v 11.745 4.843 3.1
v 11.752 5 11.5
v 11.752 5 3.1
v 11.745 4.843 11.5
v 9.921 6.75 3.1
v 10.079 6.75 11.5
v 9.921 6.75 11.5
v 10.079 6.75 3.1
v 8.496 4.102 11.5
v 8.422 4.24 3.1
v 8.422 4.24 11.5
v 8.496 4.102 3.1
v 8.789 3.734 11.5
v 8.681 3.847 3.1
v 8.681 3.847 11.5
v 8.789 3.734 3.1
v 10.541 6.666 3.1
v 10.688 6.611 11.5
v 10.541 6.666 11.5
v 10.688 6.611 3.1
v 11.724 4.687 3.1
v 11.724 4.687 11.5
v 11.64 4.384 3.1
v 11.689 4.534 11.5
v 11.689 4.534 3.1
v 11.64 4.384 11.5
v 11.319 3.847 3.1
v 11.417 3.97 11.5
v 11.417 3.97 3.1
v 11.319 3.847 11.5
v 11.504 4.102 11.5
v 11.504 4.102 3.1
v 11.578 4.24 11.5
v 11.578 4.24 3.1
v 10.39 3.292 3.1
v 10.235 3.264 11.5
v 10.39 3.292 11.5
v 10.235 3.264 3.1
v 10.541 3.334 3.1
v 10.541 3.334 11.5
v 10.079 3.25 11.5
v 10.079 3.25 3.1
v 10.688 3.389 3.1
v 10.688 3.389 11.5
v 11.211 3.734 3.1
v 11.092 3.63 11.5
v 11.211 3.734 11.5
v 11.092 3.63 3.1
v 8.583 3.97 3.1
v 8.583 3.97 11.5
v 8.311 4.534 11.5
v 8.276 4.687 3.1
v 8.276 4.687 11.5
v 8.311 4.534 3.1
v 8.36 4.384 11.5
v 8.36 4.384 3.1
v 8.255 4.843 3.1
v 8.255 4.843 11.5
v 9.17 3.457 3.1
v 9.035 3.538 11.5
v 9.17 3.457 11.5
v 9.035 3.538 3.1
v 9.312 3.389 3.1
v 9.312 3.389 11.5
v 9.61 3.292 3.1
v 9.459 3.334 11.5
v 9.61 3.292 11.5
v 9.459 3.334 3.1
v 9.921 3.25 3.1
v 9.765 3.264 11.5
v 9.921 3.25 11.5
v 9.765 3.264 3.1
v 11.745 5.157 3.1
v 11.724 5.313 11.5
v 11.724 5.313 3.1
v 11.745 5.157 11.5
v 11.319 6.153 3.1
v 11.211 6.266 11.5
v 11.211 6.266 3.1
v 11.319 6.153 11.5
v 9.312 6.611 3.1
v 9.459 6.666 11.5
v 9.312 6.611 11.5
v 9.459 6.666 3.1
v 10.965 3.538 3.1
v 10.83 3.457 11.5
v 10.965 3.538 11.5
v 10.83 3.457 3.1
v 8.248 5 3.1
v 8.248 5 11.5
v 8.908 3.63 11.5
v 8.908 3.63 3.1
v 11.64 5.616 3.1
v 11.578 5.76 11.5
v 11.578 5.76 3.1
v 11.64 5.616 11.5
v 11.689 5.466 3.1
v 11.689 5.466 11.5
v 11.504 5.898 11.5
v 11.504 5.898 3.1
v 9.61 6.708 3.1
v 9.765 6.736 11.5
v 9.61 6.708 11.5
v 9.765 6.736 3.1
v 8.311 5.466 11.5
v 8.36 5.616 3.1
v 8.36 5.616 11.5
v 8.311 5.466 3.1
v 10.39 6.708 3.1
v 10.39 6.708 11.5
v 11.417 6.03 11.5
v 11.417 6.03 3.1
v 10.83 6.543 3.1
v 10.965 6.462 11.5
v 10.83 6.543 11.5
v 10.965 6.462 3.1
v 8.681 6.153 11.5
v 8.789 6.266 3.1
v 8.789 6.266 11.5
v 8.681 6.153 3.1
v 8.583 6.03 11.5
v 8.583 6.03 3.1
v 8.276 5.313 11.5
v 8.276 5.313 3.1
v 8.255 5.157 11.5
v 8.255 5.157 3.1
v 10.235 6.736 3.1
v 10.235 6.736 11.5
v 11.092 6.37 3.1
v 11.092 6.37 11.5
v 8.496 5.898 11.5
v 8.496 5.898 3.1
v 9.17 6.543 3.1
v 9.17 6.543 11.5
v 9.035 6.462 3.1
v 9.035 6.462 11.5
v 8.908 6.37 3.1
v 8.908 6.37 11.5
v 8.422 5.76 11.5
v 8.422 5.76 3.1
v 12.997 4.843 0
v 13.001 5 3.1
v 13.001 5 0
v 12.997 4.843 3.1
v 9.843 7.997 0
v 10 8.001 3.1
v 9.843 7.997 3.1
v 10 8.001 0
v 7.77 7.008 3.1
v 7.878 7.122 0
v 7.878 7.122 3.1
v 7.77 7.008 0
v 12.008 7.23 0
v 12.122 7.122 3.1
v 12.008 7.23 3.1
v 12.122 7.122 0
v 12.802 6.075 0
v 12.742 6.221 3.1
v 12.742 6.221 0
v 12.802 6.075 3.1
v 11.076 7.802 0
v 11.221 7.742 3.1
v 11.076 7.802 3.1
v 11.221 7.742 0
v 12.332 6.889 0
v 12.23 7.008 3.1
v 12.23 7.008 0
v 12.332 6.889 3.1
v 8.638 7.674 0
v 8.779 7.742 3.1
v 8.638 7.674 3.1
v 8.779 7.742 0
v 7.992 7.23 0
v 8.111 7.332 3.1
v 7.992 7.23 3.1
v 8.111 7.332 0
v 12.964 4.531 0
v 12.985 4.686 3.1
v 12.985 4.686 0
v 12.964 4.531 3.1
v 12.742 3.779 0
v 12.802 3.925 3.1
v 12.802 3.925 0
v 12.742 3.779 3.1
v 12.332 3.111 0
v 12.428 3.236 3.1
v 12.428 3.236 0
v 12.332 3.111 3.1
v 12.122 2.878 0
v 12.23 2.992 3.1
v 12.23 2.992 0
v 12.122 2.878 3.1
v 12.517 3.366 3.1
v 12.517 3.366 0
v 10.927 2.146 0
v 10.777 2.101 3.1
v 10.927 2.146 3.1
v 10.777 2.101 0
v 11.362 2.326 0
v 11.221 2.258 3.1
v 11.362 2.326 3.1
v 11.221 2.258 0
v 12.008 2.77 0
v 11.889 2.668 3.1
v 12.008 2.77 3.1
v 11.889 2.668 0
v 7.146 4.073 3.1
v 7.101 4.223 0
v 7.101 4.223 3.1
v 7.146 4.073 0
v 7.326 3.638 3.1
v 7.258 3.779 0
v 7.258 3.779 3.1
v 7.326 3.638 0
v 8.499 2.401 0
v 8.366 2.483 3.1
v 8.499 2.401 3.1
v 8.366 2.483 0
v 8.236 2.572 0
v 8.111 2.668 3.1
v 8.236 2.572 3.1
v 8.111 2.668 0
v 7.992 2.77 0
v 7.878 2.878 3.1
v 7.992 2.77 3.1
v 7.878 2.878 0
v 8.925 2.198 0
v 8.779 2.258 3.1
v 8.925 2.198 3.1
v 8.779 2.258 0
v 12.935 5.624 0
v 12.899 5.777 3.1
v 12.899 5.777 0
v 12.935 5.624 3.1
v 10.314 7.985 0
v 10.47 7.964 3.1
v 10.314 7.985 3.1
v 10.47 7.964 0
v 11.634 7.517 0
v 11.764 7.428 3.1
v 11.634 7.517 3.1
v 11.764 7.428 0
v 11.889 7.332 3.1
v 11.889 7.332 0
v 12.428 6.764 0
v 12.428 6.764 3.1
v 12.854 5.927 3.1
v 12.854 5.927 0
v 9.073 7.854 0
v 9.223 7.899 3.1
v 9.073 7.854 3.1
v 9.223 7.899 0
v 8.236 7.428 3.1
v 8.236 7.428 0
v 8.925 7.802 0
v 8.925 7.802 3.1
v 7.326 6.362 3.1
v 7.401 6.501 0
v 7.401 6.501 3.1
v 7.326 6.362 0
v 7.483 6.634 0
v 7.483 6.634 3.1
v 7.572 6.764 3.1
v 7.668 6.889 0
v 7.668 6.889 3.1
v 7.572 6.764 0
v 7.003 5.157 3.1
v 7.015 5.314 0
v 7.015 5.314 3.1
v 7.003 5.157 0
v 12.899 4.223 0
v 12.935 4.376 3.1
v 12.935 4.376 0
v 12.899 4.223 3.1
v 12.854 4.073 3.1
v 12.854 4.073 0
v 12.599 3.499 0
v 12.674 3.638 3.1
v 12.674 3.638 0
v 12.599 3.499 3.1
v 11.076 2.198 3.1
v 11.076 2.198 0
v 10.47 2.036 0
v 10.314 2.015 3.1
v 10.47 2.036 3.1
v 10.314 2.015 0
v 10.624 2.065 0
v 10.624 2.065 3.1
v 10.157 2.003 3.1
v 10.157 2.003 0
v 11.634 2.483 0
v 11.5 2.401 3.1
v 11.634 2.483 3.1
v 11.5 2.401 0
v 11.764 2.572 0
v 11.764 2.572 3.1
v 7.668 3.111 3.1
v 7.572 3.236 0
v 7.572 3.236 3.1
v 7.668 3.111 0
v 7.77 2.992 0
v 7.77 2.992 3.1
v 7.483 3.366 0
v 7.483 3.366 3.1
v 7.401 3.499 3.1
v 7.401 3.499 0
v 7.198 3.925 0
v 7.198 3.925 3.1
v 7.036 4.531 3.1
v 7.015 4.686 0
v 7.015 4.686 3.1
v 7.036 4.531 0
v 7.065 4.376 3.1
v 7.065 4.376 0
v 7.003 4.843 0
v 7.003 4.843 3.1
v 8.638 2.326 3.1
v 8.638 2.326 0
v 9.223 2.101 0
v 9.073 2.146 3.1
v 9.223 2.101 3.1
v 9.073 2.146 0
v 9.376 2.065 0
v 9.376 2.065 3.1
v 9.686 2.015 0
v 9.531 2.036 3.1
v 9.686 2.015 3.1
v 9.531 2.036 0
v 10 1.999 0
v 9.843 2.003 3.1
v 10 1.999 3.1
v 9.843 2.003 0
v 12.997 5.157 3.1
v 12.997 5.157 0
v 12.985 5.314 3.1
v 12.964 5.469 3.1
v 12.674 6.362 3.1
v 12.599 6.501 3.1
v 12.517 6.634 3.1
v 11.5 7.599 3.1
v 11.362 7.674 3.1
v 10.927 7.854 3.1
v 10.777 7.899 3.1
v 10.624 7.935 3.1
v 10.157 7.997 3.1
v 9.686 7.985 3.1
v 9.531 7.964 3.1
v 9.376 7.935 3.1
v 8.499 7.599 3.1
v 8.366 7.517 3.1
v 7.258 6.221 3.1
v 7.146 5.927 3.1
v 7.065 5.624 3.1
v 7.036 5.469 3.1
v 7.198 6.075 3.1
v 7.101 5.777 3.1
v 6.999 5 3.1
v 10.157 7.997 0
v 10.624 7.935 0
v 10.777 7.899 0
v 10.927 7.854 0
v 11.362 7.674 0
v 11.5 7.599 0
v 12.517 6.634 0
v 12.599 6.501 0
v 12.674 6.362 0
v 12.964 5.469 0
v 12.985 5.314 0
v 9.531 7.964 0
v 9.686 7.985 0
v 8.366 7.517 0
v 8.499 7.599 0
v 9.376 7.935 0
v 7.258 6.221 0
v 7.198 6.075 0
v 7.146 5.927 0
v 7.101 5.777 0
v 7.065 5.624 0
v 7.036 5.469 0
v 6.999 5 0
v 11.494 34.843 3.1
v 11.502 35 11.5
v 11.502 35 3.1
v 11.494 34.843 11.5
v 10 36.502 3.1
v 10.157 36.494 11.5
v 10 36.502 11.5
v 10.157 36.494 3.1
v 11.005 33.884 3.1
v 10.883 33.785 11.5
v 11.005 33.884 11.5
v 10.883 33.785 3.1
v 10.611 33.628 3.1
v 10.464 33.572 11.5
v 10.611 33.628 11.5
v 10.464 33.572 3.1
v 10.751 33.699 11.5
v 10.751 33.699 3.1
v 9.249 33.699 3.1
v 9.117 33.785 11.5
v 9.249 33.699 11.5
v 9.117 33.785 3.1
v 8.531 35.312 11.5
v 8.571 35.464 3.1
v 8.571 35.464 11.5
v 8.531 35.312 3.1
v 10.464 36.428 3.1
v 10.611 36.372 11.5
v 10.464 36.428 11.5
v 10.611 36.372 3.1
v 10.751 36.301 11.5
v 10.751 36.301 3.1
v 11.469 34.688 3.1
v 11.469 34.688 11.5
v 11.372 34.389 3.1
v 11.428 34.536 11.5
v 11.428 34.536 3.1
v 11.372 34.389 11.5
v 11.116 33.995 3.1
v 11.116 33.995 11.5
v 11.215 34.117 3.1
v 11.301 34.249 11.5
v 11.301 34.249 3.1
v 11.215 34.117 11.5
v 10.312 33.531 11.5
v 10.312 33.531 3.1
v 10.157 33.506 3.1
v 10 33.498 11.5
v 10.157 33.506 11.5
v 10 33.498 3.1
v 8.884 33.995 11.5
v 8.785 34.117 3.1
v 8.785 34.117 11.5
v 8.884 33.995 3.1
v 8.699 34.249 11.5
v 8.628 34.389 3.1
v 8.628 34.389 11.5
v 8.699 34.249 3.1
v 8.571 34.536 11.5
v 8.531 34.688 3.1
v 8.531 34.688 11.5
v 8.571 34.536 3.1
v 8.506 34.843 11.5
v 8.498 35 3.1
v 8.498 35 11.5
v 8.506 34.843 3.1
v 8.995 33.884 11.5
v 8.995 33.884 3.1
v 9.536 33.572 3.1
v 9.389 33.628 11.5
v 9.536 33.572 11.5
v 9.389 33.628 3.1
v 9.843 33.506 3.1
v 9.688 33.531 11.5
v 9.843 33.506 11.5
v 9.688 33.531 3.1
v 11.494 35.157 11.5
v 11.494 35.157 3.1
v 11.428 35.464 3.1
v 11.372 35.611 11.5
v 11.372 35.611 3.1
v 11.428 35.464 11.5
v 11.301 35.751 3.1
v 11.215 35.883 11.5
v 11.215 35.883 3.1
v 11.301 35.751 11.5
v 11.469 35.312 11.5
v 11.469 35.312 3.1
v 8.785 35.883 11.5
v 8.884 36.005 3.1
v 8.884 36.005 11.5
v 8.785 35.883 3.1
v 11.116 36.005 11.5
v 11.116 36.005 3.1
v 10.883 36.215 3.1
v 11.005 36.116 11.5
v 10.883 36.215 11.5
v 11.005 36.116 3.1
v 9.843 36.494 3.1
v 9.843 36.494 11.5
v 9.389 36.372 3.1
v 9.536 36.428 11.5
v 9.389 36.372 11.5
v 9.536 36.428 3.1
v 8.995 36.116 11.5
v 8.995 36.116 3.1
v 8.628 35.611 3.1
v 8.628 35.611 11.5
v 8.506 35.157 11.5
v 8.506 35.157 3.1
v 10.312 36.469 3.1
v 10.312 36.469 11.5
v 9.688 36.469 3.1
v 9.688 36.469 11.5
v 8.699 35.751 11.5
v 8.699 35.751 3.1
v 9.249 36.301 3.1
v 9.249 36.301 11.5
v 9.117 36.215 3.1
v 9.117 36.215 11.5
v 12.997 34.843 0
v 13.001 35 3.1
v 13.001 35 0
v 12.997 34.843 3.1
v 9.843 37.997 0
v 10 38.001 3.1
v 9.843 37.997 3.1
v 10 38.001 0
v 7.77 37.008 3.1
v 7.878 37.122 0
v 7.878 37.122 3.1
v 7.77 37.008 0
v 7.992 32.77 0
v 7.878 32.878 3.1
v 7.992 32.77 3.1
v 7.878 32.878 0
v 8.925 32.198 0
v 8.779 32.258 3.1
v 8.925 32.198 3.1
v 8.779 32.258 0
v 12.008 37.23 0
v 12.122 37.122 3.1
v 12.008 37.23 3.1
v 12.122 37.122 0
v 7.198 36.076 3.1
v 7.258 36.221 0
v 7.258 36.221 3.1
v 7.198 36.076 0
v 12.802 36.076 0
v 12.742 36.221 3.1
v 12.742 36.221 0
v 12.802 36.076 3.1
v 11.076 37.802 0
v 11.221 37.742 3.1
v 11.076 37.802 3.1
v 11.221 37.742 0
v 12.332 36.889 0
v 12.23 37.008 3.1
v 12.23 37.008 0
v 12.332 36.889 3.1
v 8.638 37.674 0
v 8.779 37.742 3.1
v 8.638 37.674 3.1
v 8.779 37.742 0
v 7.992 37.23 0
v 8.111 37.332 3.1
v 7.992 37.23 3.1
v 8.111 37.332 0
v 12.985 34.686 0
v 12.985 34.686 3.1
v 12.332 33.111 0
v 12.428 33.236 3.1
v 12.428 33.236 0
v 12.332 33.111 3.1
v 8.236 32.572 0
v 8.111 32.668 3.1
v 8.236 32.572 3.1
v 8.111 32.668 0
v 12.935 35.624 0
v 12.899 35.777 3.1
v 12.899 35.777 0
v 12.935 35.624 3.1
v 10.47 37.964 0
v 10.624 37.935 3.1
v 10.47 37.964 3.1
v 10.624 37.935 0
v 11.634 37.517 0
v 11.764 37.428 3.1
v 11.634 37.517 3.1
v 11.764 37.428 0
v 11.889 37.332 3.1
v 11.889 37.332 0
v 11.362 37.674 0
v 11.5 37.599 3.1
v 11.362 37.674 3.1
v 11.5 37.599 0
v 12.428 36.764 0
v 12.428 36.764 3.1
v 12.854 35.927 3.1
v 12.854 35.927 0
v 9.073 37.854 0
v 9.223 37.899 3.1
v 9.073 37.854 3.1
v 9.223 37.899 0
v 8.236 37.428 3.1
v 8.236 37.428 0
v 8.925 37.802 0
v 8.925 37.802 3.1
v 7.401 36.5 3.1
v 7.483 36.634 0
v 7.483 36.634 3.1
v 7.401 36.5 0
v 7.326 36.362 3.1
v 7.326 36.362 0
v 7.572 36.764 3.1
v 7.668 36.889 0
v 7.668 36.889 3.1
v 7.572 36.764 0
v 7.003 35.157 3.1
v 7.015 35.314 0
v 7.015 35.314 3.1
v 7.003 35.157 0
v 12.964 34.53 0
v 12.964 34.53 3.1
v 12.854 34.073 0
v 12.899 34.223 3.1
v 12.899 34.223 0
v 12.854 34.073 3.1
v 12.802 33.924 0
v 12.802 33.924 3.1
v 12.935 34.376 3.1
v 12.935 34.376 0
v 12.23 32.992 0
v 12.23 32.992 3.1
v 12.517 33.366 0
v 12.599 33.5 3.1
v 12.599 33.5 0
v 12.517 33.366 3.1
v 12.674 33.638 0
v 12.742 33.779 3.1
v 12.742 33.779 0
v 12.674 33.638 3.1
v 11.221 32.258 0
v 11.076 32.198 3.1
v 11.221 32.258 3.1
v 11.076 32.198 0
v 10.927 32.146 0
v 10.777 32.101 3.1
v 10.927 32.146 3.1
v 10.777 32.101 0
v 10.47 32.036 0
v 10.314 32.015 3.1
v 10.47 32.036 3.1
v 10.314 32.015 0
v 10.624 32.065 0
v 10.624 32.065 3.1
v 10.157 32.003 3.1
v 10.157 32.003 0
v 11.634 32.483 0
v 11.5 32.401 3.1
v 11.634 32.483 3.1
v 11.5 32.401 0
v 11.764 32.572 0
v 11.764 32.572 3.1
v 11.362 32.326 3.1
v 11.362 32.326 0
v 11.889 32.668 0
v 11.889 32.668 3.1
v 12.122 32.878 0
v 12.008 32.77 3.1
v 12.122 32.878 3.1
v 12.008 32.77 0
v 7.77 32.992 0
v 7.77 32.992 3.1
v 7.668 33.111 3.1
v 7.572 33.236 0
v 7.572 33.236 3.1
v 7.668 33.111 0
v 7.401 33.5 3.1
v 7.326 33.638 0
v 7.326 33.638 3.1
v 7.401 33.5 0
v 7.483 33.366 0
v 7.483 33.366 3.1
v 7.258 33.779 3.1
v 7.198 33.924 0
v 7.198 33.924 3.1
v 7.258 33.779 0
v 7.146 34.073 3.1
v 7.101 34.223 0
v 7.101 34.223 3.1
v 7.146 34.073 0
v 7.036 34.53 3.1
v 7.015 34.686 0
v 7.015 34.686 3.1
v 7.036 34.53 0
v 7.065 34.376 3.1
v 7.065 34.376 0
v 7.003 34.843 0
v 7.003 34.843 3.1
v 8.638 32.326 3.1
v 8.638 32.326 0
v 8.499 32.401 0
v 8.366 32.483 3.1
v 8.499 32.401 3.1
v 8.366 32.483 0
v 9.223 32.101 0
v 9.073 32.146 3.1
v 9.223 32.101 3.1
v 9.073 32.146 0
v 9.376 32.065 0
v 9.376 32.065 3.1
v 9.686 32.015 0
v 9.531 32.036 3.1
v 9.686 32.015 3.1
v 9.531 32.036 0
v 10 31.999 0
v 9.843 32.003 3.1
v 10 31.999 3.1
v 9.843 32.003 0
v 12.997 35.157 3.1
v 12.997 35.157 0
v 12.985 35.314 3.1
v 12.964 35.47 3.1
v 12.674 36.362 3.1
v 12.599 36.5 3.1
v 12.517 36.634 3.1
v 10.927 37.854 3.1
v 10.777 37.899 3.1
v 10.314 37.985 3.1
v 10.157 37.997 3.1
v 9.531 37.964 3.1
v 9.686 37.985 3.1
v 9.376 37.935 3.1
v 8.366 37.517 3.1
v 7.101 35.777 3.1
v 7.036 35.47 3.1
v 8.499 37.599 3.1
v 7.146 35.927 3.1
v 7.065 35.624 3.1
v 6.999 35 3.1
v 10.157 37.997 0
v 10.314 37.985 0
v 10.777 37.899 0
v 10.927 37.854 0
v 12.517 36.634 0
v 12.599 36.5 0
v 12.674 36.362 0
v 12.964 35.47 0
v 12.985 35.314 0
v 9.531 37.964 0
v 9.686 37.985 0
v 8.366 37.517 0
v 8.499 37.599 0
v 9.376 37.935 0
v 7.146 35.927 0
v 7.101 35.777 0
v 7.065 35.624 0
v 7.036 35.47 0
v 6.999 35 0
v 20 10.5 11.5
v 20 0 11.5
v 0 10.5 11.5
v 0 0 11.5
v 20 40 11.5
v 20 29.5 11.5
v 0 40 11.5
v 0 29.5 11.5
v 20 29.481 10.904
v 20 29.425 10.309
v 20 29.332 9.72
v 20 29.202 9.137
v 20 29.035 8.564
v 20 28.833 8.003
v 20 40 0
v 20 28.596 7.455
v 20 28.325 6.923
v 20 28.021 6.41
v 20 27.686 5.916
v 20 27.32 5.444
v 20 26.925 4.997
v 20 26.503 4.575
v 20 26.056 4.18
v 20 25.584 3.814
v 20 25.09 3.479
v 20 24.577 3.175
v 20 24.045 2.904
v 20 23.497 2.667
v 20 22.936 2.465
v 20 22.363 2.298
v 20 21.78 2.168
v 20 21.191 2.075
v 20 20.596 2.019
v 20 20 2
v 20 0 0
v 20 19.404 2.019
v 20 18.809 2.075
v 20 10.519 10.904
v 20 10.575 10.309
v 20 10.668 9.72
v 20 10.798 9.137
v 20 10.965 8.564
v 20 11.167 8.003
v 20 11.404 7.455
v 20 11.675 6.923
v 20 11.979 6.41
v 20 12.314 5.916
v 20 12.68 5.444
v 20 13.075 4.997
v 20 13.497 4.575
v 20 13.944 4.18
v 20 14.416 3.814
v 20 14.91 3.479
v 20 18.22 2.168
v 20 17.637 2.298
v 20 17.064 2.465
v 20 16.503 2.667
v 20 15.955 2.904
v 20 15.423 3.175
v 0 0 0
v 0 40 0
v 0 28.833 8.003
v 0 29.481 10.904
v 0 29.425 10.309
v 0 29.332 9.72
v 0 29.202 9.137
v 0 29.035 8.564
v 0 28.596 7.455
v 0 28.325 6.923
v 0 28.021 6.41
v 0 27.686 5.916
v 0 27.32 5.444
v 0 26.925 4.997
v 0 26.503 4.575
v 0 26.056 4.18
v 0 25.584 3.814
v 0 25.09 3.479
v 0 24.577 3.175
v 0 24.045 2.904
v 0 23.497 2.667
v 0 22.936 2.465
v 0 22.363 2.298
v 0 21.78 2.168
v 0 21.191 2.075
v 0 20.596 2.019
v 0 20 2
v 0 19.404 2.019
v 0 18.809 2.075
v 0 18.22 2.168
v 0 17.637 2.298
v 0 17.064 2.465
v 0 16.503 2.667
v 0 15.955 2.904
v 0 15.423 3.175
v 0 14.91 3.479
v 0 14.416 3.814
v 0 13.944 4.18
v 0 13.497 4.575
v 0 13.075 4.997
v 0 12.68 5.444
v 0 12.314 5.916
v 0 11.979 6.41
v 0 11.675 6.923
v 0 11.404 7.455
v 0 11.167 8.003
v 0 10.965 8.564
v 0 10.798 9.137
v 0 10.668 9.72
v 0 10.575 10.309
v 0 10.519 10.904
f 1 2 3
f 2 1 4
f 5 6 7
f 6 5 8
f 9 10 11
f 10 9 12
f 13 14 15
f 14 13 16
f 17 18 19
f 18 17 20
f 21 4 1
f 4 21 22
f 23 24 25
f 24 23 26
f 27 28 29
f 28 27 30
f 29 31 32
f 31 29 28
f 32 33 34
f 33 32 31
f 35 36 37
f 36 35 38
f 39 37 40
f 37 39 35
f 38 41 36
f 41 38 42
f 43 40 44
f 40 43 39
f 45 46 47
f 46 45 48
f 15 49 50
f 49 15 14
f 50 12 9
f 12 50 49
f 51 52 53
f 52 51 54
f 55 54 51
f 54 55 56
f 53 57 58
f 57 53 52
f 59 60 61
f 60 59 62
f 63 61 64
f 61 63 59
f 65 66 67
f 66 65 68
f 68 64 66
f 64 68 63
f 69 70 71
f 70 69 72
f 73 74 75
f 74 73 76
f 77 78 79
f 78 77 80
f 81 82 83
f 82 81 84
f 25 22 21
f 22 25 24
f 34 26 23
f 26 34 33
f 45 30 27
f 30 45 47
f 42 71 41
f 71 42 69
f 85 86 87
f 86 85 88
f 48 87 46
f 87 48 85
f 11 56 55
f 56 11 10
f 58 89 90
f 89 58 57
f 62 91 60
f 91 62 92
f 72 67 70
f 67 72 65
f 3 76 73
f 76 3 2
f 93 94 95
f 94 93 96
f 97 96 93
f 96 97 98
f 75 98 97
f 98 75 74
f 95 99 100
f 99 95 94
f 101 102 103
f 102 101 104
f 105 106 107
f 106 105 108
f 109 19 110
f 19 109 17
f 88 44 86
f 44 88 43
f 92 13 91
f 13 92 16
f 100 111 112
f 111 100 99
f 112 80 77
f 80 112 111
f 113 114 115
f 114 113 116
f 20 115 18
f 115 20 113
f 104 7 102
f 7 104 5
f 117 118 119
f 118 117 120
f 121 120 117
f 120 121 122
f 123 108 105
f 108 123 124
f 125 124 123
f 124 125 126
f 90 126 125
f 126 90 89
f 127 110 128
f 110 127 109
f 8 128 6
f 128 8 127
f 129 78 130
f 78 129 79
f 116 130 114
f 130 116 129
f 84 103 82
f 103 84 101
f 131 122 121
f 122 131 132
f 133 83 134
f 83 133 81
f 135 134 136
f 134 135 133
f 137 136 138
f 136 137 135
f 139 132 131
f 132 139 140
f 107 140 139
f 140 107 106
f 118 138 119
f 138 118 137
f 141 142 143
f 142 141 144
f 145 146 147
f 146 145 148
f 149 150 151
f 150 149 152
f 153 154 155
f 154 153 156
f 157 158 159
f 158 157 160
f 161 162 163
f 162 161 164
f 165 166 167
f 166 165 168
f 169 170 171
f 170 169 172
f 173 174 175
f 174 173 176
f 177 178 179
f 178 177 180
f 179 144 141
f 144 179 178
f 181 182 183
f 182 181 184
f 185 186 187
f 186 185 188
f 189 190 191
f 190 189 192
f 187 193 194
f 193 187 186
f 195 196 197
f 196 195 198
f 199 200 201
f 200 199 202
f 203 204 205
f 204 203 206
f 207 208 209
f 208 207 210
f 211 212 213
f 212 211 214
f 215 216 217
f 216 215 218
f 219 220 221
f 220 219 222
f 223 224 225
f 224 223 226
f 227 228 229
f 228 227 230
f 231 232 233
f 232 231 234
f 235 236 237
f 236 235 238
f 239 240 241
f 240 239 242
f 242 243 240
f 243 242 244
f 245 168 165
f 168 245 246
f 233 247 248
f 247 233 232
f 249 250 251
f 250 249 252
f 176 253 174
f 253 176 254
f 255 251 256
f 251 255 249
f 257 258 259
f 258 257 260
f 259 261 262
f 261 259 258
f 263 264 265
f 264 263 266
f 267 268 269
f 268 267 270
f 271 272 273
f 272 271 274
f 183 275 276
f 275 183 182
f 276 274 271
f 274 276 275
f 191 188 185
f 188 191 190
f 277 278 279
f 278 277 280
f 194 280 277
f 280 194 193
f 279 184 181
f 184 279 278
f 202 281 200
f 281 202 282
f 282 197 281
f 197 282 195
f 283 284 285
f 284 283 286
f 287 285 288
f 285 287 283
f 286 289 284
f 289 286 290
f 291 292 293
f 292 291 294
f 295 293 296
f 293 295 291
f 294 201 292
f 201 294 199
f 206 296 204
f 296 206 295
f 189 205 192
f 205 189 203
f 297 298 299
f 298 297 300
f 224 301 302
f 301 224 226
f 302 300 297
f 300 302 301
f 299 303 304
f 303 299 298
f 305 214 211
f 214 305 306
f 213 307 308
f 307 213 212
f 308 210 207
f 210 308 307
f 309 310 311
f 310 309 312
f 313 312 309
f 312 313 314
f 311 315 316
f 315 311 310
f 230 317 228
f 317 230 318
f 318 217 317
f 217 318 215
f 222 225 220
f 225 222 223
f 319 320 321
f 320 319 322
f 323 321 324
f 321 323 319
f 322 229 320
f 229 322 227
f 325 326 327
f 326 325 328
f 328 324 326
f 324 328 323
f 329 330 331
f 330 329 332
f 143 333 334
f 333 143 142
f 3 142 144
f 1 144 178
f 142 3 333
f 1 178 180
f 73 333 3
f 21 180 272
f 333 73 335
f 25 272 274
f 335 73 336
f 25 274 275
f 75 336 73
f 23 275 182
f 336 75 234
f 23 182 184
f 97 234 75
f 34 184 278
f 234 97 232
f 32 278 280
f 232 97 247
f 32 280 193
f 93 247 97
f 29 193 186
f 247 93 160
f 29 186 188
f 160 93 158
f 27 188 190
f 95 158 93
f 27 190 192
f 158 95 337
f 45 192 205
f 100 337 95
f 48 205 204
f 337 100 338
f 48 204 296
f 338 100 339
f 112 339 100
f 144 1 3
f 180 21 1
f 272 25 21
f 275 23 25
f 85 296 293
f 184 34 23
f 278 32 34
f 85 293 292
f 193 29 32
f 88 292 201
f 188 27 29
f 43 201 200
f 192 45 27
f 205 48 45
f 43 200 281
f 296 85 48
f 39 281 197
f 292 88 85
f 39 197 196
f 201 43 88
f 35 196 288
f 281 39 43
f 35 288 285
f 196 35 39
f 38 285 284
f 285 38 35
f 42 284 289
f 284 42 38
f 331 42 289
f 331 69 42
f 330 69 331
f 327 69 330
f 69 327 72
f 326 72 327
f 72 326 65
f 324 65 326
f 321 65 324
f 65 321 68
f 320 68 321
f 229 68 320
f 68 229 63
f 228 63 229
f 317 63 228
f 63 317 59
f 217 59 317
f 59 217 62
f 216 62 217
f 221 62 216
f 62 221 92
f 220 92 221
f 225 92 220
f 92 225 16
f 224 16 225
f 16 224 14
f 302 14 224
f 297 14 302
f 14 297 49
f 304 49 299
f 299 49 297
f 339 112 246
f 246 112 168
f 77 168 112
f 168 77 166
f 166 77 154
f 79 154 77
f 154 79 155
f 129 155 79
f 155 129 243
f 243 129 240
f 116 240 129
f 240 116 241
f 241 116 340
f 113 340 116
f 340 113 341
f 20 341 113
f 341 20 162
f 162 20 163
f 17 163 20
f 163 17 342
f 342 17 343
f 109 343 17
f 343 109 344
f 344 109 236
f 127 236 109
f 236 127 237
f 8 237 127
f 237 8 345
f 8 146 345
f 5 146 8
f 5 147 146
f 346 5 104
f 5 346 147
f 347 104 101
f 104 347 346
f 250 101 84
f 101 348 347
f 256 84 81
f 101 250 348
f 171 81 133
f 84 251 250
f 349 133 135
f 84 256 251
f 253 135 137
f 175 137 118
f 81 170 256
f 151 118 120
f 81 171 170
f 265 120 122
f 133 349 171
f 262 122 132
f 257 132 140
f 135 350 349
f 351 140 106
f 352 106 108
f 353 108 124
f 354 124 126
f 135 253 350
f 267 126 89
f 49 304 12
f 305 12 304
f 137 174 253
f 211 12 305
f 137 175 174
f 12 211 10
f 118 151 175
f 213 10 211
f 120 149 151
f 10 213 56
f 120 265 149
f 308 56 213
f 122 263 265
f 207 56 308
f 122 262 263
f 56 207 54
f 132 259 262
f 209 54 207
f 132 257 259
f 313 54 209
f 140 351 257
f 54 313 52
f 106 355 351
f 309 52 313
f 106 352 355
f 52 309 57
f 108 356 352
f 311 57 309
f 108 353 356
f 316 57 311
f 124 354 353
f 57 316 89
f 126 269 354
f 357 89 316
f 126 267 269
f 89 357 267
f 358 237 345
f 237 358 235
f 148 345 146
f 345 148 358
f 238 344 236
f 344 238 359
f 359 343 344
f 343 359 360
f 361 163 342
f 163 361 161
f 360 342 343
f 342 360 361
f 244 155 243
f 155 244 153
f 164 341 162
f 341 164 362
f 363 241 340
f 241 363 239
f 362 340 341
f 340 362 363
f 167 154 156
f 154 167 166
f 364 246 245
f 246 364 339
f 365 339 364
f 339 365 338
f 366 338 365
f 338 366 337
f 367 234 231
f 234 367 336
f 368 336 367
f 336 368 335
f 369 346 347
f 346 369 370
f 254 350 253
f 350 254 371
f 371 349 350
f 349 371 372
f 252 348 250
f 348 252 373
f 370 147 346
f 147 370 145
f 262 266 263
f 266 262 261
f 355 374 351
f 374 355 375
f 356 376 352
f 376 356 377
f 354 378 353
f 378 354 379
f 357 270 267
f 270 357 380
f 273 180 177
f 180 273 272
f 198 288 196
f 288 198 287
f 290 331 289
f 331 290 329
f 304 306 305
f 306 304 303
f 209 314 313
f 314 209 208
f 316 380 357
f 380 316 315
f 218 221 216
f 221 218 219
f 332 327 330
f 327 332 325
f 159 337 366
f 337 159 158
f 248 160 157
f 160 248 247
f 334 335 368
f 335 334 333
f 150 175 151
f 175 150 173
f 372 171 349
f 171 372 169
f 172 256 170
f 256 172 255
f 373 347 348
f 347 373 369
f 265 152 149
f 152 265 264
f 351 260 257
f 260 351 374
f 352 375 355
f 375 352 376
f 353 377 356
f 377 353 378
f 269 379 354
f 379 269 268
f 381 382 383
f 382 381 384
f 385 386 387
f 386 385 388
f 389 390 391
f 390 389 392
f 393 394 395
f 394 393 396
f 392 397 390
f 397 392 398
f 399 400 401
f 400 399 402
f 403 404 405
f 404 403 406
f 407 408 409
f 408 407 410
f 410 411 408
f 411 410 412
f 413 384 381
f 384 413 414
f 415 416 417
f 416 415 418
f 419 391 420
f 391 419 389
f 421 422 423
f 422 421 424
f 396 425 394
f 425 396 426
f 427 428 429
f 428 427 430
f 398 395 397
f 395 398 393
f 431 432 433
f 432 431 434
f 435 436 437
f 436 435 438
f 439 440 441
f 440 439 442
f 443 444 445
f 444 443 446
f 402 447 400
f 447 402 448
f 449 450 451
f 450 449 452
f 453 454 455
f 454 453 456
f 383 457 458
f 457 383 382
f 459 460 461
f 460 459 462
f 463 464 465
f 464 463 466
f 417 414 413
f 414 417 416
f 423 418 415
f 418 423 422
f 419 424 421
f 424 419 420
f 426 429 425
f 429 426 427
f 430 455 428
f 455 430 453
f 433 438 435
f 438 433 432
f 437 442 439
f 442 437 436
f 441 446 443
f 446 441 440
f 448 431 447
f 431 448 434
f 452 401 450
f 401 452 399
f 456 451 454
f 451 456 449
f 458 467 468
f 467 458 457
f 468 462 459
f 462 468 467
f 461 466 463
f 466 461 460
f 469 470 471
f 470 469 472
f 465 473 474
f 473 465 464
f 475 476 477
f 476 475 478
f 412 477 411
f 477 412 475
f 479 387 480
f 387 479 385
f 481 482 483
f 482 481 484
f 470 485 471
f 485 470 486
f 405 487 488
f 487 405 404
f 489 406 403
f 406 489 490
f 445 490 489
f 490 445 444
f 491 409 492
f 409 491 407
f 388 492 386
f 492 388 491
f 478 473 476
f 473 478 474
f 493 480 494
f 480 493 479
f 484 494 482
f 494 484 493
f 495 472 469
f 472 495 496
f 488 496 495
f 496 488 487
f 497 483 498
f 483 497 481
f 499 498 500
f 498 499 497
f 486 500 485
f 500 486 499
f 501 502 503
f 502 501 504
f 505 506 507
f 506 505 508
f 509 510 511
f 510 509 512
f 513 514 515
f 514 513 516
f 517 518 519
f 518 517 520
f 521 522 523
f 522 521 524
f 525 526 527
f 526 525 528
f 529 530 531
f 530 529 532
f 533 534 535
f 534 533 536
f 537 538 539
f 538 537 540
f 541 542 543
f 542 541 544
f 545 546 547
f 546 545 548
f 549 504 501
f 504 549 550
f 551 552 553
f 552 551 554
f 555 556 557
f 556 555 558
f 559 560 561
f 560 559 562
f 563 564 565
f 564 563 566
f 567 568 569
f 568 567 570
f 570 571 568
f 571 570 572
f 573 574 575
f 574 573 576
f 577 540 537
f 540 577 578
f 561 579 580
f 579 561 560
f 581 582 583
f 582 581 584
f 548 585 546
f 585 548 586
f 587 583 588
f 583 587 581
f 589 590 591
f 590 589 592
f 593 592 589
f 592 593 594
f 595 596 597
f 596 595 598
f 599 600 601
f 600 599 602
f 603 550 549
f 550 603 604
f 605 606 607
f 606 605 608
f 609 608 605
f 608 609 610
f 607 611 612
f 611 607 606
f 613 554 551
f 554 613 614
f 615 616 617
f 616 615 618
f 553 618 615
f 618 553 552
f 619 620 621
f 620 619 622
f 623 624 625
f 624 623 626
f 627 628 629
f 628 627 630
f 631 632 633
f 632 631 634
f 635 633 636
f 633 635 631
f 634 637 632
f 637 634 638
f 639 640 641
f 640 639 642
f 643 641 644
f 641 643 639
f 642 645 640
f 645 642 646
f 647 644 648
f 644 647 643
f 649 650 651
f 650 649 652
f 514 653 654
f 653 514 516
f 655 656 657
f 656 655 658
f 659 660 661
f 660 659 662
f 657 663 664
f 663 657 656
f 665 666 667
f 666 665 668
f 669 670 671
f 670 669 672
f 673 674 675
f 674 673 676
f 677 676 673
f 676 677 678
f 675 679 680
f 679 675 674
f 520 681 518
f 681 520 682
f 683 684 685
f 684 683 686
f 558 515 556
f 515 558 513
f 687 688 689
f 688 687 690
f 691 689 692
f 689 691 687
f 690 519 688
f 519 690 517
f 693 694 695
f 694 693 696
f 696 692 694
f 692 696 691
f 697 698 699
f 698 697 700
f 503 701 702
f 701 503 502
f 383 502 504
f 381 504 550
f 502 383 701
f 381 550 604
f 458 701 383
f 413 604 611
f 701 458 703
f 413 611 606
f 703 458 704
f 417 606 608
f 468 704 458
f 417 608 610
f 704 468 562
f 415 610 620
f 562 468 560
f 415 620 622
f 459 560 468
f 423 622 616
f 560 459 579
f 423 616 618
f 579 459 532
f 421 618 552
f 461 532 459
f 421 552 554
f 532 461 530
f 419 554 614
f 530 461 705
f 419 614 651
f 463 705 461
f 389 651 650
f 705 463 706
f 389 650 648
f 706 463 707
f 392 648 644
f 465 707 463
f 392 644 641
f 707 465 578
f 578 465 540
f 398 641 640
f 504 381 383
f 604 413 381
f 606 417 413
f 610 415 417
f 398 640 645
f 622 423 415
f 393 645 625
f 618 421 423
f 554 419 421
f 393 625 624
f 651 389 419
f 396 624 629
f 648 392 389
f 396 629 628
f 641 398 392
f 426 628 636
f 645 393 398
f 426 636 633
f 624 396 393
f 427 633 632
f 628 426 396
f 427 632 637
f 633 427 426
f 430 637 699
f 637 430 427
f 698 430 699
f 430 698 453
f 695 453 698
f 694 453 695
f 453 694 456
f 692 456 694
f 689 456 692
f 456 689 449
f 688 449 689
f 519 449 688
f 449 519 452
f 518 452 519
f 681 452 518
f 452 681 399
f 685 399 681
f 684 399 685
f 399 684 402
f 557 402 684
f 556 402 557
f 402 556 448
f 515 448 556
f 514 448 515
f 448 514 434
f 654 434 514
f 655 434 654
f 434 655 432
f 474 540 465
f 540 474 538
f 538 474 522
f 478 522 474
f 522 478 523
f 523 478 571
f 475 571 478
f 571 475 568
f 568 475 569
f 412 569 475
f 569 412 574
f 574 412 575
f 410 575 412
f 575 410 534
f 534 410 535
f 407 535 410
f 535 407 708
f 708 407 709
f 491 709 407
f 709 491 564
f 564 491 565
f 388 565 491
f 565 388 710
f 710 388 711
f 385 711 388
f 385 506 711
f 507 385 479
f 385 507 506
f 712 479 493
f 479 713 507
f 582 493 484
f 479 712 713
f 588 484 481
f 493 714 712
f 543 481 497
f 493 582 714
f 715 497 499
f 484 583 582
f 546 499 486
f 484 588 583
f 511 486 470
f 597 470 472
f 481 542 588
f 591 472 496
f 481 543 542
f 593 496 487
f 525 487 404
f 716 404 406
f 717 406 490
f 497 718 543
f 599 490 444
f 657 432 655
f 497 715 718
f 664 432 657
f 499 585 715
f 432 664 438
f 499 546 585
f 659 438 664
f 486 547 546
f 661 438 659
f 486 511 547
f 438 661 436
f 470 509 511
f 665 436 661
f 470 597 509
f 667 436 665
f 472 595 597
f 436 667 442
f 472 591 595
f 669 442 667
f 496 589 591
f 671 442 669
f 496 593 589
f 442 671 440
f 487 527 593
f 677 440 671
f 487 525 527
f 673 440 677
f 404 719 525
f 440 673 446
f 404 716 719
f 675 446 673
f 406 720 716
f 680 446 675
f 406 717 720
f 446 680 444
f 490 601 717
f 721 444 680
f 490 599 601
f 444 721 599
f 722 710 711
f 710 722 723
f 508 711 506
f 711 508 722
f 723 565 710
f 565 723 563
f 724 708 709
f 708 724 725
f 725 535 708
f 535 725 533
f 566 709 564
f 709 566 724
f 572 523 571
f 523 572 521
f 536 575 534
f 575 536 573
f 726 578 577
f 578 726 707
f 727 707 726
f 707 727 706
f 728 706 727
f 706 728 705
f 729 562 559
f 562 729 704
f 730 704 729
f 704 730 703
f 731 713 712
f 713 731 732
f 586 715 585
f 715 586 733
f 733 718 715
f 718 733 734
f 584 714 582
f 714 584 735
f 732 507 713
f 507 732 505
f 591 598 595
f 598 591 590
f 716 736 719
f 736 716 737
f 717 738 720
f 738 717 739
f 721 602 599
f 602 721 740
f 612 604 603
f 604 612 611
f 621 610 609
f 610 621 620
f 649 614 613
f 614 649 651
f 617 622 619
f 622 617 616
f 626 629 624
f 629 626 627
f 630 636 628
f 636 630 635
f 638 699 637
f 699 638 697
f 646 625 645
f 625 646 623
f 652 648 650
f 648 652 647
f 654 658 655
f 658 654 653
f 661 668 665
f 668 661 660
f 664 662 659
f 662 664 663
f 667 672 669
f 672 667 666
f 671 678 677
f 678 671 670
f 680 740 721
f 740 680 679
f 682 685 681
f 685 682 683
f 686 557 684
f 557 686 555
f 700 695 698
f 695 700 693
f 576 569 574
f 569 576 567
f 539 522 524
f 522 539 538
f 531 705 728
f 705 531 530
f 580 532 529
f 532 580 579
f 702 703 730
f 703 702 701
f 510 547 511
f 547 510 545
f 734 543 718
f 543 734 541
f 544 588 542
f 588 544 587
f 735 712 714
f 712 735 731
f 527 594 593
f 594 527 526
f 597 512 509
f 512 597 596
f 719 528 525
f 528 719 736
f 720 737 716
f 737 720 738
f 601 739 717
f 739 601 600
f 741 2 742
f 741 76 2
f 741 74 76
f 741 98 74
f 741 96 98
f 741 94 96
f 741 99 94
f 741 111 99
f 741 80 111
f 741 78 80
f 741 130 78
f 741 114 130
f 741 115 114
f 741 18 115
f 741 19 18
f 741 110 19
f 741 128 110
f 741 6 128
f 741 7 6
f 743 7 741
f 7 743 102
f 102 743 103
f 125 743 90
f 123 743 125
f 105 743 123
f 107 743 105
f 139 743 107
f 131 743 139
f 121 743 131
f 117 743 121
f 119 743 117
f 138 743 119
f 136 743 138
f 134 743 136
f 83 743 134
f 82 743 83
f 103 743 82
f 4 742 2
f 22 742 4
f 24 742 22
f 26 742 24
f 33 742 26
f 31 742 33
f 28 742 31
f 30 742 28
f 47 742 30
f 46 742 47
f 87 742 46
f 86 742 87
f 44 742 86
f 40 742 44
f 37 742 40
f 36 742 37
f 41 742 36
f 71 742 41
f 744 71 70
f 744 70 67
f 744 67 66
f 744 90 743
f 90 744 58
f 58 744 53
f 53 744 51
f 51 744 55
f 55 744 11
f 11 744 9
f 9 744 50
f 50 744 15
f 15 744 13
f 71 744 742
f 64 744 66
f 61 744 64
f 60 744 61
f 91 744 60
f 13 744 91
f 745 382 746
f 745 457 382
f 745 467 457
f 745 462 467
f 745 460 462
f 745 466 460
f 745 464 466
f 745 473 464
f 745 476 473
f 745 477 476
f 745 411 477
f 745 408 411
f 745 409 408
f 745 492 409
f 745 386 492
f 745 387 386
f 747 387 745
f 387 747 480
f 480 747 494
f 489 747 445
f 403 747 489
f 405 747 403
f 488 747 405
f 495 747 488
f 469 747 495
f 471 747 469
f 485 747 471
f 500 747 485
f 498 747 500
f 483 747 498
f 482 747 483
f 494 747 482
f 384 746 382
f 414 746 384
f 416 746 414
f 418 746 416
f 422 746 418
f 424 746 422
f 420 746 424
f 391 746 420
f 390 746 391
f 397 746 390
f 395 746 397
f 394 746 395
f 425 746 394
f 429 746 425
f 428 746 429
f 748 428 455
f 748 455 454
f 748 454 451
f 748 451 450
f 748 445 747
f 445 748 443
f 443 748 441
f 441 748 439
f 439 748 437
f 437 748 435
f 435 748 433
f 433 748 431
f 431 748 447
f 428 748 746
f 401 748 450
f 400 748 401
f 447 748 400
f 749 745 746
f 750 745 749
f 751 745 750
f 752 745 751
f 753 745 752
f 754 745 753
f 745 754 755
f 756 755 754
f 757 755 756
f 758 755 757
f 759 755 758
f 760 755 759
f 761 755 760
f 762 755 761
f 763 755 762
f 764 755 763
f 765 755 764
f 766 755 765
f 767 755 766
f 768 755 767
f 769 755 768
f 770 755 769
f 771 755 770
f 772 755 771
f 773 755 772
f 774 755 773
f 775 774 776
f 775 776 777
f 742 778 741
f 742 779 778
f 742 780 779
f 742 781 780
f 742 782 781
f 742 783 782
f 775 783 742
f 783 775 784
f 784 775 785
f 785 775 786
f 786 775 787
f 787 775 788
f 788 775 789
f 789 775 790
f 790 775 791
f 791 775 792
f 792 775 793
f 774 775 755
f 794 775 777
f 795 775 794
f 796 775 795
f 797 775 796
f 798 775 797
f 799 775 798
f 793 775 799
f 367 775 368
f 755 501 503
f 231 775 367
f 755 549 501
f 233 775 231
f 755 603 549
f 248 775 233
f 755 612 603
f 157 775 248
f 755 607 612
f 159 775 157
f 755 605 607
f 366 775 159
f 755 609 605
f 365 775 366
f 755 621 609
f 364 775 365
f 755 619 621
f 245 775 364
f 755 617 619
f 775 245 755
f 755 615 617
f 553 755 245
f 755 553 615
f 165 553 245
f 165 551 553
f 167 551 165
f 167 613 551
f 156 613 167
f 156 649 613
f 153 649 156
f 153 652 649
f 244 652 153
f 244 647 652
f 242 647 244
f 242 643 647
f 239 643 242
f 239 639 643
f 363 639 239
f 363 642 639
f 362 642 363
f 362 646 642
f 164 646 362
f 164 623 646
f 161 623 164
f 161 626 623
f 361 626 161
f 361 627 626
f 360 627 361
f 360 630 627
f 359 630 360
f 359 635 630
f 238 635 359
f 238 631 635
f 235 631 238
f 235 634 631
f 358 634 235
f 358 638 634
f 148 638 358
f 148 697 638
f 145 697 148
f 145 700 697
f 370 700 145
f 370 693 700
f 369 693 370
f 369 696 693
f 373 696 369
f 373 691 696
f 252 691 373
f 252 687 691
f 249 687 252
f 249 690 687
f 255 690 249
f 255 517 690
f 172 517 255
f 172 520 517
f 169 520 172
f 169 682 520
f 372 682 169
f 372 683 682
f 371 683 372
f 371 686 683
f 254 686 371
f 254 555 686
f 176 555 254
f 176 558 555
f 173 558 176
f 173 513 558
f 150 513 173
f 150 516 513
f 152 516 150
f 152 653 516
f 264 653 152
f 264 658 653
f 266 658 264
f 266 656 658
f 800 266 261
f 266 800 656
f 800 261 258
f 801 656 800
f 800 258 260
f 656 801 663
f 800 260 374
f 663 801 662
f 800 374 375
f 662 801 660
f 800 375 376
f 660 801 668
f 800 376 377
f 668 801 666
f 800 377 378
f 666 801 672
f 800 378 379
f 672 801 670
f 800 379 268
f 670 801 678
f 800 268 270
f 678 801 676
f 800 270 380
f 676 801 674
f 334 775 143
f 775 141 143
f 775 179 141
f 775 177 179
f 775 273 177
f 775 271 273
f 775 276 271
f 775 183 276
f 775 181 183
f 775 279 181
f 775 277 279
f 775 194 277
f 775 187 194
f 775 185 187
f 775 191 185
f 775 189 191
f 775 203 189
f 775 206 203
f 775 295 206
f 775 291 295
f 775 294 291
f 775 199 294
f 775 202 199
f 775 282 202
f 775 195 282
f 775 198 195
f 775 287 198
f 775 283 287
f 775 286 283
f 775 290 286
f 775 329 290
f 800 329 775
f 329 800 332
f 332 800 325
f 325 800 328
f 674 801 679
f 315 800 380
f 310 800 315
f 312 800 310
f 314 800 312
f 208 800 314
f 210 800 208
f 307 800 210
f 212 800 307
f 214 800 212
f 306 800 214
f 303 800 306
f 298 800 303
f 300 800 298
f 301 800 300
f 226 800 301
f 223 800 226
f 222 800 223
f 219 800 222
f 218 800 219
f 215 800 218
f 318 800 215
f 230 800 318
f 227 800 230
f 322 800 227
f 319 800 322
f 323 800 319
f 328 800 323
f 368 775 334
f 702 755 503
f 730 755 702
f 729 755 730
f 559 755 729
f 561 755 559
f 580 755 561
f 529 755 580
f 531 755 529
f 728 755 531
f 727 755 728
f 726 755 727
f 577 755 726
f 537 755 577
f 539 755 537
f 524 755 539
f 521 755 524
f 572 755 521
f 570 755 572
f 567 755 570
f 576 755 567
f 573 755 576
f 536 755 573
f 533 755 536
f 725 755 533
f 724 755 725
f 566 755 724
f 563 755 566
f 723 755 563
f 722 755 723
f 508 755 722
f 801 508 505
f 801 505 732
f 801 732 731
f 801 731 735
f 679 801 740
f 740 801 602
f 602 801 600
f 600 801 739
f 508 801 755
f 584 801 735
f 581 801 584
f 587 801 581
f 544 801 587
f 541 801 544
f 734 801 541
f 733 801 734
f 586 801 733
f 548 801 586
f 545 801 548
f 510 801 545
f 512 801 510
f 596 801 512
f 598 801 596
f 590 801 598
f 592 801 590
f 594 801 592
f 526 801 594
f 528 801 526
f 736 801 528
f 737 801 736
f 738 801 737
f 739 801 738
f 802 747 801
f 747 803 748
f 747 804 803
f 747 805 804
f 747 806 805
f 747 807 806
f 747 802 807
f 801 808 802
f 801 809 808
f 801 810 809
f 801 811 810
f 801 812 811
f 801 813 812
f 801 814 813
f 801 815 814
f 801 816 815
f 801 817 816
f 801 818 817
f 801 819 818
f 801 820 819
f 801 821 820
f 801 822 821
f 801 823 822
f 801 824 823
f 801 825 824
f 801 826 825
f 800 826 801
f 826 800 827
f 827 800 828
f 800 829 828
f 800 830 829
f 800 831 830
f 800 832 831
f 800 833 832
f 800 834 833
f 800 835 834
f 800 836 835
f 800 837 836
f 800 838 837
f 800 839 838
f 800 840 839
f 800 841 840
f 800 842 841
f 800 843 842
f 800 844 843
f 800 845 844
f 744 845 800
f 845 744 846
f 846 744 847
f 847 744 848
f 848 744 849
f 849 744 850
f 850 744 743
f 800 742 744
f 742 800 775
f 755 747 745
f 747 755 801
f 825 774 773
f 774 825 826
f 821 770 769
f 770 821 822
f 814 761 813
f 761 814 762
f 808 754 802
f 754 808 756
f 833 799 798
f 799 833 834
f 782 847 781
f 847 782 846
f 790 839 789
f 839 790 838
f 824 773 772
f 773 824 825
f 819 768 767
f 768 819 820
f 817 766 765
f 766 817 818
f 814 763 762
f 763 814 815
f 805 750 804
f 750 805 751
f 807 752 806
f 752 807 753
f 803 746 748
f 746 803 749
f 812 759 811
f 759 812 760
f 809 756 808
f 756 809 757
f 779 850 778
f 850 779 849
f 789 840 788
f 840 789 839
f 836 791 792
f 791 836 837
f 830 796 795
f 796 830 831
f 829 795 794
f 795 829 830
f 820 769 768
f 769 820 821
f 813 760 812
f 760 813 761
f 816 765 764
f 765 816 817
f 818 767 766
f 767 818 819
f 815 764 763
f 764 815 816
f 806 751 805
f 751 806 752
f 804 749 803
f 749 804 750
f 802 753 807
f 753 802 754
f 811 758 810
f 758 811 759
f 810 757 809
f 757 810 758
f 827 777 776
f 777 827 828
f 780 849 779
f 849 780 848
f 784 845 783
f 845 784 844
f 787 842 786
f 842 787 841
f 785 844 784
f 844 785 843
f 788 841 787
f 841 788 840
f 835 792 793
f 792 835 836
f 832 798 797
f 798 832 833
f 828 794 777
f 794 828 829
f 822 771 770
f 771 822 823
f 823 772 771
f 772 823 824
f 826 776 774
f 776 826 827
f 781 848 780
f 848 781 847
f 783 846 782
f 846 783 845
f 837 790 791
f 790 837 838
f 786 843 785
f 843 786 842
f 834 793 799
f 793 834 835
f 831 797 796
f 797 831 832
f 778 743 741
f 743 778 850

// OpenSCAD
// file: ../parts/lmu10.scad
module lmu10(hollow = false)
{
    difference()
    {
        cylinder(d = 19, h = 29, $fn = 100);
        if (hollow == true)
        {
            cylinder(d = 10, h = 29, $fn = 100);
        }
    }
}
// file: ../parts/nema17MotorPlate.scad
nema17PlateWidth = 42.3;

module nema17MotorPlate(h = 2)
{
    difference()
    {
        cube([42.3, 42.3, h]);

        translate([42.3 / 2, 42.3 / 2, -.1])
            polyhole(d = 22.5, h = h + .2);
        
        o = (42.3 - 31) / 2;

        translate([o, o, -.1])
            hole3mm(h = h + .2);
        translate([o, 42.3 - o, -.1])
            hole3mm(h = h + .2);
        translate([42.3 - o, o, -.1])
            hole3mm(h = h + .2);            
        translate([42.3 - o, 42.3 - o, -.1])
            hole3mm(h = h + .2);
    }
}
// file: ../functions.scad
module polyhole(h, d)
{
    n = max(round(20 * d), 3);

    rotate([0,0,180])
    {
        cylinder(h = h, r = (d / 2) / cos (180 / n), $fn = n);
    }
}

module triangle(out, up, thick, center=false)
{
    centroid = center ? [-a_len/3, -o_len/3, -depth/2] : [0, 0, 0];
    rotate([0, -90, 0])
    translate(centroid) linear_extrude(height=thick)
    {
        polygon(points=[[0,0],[0,out],[up,0]], paths=[[0,1,2]]);
    }
}
// file: ../materials.scad
module extrusionVertical(x = 20, y = 20, l)
{
    difference()
    {
        cube([x, y, l]);

        translate([x-10 - 5/2, -.1, -.1])
            cube([5, 2, l+.2]);

        translate([x-10 - 5/2, y - 2, -.1])
            cube([5, 2.1, l+.2]);

        translate([x - 3, 10 - 5/2, -.1])
            cube([3.1, 5, l+.2]);

        translate([-0.1, 10-5/2, -.1])
            cube([3.1, 5, l+.2]);
    }
}

module extrusionHorizontalY(x = 20, y = 20, l)
{
    difference()
    {
        cube([x, l, y]);

        translate([x-10 - 5/2, .1, -.1])
            cube([5, l + .2, 2]);

        translate([x-10 - 5/2, -.1, y-2])
            cube([5, l + .2, 2.1]);

        translate([-.1, -.1, 10 - 5/2])
            cube([2.1, l + .2, 5]);
        translate([-.1, -.1, y - 10 - 5/2])
            cube([2.1, l + .2, 5]);

        translate([x - 3, -1, 10 - 5/2])
            cube([3.1, l + .2, 5]);
        translate([x - 3, -1, y - 10 - 5/2])
            cube([3.1, l + .2, 5]);
    }
}

module extrusionHorizontalX(x = 20, y = 20, l)
{
    difference()
    {
        cube([l, x, y]);

        translate([-.1,x-10 - 5/2, -.1])
            cube([l + .2, 5, 2]);

        translate([-.1, x-10 - 5/2, y-2])
            cube([l + .2, 5, 2.1]);

        translate([-.1, -.1, 10 - 5/2])
            cube([l + .2, 2.1, 5]);
        translate([-.1, -.1, y - 10 - 5/2])
            cube([l + .2, 2.1, 5]);

        translate([-.1, x - 3, 10 - 5/2])
             cube([l + .2, 3.1, 5]);
        translate([-.1, x - 3, y - 10 - 5/2])
             cube([l + .2, 3.1, 5]);
    }
}

module tenMMBar(l)
{
    cylinder(d = 10.5, h = l, $fn = 100);
}

module pomNutMount(h = 3.5)
{
    polyhole(d = 10.5, h = h);
    pomNutHoles(h = h);
}

module pomNutHoles(h) {
    translate([-7.75, 0, 0])
        hole3mm(h = h);
    translate([0, -7.75, 0])
        hole3mm(h = h);
    translate([7.75, 0, 0])
        hole3mm(h = h);
    translate([0, 7.75, 0])
        hole3mm(h = h);
}

module pomNut() {
    difference() {
        union() {
            polyhole(d = 10.5, h = 10.5);
            translate([0, 0, 1.5])
                polyhole(d = 22, h = 3.5);
        }

        translate([0, 0, -.1])
            polyhole(d = (10.5 - (1.8*2)), h = 10.7);

        translate([0, 0, 1.4]) {
            pomNutHoles(h = 3.7);
        }
    }
}

module bearings12mm()
{
    difference() {
        union() {
            polyhole(d = 15, h = 1.5);
            polyhole(d = 12, h = 10);
            translate([0,0,8.5])
                polyhole(d = 15, h = 1.5);
        }
        translate([0, 0, -.1])
            polyhole(d = 4, h = 10.2);
    }
}
// file: ../parts/z-gantryBracket.scad
zGantryBracketY = 190;
zGantryBracketX = 30;
zGantryBracketBaseWidth = 40;
zGantryBracketBase = 170;

module zGantryBracketClampBase()
{
    difference()
    {
        cube([zGantryBracketX, zGantryBracketBaseWidth, 20]);

        translate([zGantryBracketX, zGantryBracketBaseWidth / 2, -.1])
            lmu10();

        translate([zGantryBracketX - 8, -.1, 10 - 6/2])
            cube([3, 10, 6]);

        translate([zGantryBracketX - 10, 5, 10])
            rotate([0, 90, 0])
                hole3mm(h = 10.1);

        translate([zGantryBracketX - 8, zGantryBracketBaseWidth - 10, 10 - 6 / 2])
            cube([3, 10.1, 6]);
            
        translate([zGantryBracketX - 10, zGantryBracketBaseWidth - 5, 10])
            rotate([0, 90, 0])
                hole3mm(h = 10.1);    
    }
}

module zGantryBracketScrewBracket()
{
    depth = zGantryBracketX +  19 / 2;

    translate([0,0, 18])
    difference()
    {
        cube([depth,30,2]);

        //center
        translate([depth / 2 + 3, depth / 2 - 5, -.1])
        {
            polyhole(d = 12, h = 3);

            translate([-7.5, -7.5, 0])
                hole3mm(h = 3);
            translate([7.5, -7.5, 0])
                hole3mm(h = 3);
            translate([-7.5, 7.5, 0])
                hole3mm(h = 3);
            translate([7.5, 7.5, 0])
                hole3mm(h = 3);
        }
    }

    translate([0, 2, 20])
        rotate([180,0,90])
            triangle(out = depth, up = 20, thick = 2);

    translate([0, 30, 20])
        rotate([180,0,90])
            triangle(out = depth, up = 20, thick = 2);
}


module zGantryBracket()
{
    translate([0, (zGantryBracketY - zGantryBracketBase) / 2, 0])
    {
        zGantryBracketClampBase();

        translate([0, zGantryBracketBase - zGantryBracketBaseWidth, 0])
            zGantryBracketClampBase();
    }
    
    difference()
    {
        cube([2, zGantryBracketY, 20]);

        translate([-.1, 5, 10])
            rotate([0, 90, 0])
                hole5mm(h = 2.2);

        translate([-.1, zGantryBracketY - 5, 10])
            rotate([0, 90, 0])
                hole5mm(h = 2.2);

        translate([-.1, zGantryBracketY / 2 - 30, 10])
            rotate([0, 90, 0])
                hole5mm(h = 2.2);

        translate([-.1, zGantryBracketY / 2 + 30, 10])
            rotate([0, 90, 0])
                hole5mm(h = 2.2);
    }

    translate([2, zGantryBracketY / 2 - 15, 0])
    {
        zGantryBracketScrewBracket();
    }

    
}

module zGantryBracketClamp()
{
    width = 19 / 2 + 2;
            
    difference()
    {
        cube([width, zGantryBracketBaseWidth, 20]);

        translate([0, zGantryBracketBaseWidth / 2, -.5])
            lmu10();

        translate([-.1, 5, 10])
            rotate([0, 90, 0])
            {
                hole3mm(h = width + .2);

                translate([0, 0, width - 3])
                    polyhole(d = 6, h = 3.2);
            }
            
        translate([-.1, zGantryBracketBaseWidth - 5, 10])
            rotate([0, 90, 0])
            {
                polyhole(d = 3, h = width + .2);
                
                translate([0, 0, width - 3])
                    polyhole(d = 6, h = 3.2);
            }
    }
}
// file: ../common.scad
include <materials.scad>
include <functions.scad>
include <parts/nema17MotorPlate.scad>
include <parts/lmu10.scad>

zGantryBracketX = 20;
lmu10Diameter = 20;
lmu10Length = 29;

module hole5mm(h = 2.2) {
    polyhole(d = 5.5, h = h);
}

module hole3mm(h = 2.2) {
    polyhole(d = 3.5, h = h);
}
// main file
include <../common.scad>
include <../parts/z-gantryBracket.scad>

echo("With Supports: no");

translate([0,0,11.5])
    rotate([0,90,0])
        zGantryBracketClamp();
